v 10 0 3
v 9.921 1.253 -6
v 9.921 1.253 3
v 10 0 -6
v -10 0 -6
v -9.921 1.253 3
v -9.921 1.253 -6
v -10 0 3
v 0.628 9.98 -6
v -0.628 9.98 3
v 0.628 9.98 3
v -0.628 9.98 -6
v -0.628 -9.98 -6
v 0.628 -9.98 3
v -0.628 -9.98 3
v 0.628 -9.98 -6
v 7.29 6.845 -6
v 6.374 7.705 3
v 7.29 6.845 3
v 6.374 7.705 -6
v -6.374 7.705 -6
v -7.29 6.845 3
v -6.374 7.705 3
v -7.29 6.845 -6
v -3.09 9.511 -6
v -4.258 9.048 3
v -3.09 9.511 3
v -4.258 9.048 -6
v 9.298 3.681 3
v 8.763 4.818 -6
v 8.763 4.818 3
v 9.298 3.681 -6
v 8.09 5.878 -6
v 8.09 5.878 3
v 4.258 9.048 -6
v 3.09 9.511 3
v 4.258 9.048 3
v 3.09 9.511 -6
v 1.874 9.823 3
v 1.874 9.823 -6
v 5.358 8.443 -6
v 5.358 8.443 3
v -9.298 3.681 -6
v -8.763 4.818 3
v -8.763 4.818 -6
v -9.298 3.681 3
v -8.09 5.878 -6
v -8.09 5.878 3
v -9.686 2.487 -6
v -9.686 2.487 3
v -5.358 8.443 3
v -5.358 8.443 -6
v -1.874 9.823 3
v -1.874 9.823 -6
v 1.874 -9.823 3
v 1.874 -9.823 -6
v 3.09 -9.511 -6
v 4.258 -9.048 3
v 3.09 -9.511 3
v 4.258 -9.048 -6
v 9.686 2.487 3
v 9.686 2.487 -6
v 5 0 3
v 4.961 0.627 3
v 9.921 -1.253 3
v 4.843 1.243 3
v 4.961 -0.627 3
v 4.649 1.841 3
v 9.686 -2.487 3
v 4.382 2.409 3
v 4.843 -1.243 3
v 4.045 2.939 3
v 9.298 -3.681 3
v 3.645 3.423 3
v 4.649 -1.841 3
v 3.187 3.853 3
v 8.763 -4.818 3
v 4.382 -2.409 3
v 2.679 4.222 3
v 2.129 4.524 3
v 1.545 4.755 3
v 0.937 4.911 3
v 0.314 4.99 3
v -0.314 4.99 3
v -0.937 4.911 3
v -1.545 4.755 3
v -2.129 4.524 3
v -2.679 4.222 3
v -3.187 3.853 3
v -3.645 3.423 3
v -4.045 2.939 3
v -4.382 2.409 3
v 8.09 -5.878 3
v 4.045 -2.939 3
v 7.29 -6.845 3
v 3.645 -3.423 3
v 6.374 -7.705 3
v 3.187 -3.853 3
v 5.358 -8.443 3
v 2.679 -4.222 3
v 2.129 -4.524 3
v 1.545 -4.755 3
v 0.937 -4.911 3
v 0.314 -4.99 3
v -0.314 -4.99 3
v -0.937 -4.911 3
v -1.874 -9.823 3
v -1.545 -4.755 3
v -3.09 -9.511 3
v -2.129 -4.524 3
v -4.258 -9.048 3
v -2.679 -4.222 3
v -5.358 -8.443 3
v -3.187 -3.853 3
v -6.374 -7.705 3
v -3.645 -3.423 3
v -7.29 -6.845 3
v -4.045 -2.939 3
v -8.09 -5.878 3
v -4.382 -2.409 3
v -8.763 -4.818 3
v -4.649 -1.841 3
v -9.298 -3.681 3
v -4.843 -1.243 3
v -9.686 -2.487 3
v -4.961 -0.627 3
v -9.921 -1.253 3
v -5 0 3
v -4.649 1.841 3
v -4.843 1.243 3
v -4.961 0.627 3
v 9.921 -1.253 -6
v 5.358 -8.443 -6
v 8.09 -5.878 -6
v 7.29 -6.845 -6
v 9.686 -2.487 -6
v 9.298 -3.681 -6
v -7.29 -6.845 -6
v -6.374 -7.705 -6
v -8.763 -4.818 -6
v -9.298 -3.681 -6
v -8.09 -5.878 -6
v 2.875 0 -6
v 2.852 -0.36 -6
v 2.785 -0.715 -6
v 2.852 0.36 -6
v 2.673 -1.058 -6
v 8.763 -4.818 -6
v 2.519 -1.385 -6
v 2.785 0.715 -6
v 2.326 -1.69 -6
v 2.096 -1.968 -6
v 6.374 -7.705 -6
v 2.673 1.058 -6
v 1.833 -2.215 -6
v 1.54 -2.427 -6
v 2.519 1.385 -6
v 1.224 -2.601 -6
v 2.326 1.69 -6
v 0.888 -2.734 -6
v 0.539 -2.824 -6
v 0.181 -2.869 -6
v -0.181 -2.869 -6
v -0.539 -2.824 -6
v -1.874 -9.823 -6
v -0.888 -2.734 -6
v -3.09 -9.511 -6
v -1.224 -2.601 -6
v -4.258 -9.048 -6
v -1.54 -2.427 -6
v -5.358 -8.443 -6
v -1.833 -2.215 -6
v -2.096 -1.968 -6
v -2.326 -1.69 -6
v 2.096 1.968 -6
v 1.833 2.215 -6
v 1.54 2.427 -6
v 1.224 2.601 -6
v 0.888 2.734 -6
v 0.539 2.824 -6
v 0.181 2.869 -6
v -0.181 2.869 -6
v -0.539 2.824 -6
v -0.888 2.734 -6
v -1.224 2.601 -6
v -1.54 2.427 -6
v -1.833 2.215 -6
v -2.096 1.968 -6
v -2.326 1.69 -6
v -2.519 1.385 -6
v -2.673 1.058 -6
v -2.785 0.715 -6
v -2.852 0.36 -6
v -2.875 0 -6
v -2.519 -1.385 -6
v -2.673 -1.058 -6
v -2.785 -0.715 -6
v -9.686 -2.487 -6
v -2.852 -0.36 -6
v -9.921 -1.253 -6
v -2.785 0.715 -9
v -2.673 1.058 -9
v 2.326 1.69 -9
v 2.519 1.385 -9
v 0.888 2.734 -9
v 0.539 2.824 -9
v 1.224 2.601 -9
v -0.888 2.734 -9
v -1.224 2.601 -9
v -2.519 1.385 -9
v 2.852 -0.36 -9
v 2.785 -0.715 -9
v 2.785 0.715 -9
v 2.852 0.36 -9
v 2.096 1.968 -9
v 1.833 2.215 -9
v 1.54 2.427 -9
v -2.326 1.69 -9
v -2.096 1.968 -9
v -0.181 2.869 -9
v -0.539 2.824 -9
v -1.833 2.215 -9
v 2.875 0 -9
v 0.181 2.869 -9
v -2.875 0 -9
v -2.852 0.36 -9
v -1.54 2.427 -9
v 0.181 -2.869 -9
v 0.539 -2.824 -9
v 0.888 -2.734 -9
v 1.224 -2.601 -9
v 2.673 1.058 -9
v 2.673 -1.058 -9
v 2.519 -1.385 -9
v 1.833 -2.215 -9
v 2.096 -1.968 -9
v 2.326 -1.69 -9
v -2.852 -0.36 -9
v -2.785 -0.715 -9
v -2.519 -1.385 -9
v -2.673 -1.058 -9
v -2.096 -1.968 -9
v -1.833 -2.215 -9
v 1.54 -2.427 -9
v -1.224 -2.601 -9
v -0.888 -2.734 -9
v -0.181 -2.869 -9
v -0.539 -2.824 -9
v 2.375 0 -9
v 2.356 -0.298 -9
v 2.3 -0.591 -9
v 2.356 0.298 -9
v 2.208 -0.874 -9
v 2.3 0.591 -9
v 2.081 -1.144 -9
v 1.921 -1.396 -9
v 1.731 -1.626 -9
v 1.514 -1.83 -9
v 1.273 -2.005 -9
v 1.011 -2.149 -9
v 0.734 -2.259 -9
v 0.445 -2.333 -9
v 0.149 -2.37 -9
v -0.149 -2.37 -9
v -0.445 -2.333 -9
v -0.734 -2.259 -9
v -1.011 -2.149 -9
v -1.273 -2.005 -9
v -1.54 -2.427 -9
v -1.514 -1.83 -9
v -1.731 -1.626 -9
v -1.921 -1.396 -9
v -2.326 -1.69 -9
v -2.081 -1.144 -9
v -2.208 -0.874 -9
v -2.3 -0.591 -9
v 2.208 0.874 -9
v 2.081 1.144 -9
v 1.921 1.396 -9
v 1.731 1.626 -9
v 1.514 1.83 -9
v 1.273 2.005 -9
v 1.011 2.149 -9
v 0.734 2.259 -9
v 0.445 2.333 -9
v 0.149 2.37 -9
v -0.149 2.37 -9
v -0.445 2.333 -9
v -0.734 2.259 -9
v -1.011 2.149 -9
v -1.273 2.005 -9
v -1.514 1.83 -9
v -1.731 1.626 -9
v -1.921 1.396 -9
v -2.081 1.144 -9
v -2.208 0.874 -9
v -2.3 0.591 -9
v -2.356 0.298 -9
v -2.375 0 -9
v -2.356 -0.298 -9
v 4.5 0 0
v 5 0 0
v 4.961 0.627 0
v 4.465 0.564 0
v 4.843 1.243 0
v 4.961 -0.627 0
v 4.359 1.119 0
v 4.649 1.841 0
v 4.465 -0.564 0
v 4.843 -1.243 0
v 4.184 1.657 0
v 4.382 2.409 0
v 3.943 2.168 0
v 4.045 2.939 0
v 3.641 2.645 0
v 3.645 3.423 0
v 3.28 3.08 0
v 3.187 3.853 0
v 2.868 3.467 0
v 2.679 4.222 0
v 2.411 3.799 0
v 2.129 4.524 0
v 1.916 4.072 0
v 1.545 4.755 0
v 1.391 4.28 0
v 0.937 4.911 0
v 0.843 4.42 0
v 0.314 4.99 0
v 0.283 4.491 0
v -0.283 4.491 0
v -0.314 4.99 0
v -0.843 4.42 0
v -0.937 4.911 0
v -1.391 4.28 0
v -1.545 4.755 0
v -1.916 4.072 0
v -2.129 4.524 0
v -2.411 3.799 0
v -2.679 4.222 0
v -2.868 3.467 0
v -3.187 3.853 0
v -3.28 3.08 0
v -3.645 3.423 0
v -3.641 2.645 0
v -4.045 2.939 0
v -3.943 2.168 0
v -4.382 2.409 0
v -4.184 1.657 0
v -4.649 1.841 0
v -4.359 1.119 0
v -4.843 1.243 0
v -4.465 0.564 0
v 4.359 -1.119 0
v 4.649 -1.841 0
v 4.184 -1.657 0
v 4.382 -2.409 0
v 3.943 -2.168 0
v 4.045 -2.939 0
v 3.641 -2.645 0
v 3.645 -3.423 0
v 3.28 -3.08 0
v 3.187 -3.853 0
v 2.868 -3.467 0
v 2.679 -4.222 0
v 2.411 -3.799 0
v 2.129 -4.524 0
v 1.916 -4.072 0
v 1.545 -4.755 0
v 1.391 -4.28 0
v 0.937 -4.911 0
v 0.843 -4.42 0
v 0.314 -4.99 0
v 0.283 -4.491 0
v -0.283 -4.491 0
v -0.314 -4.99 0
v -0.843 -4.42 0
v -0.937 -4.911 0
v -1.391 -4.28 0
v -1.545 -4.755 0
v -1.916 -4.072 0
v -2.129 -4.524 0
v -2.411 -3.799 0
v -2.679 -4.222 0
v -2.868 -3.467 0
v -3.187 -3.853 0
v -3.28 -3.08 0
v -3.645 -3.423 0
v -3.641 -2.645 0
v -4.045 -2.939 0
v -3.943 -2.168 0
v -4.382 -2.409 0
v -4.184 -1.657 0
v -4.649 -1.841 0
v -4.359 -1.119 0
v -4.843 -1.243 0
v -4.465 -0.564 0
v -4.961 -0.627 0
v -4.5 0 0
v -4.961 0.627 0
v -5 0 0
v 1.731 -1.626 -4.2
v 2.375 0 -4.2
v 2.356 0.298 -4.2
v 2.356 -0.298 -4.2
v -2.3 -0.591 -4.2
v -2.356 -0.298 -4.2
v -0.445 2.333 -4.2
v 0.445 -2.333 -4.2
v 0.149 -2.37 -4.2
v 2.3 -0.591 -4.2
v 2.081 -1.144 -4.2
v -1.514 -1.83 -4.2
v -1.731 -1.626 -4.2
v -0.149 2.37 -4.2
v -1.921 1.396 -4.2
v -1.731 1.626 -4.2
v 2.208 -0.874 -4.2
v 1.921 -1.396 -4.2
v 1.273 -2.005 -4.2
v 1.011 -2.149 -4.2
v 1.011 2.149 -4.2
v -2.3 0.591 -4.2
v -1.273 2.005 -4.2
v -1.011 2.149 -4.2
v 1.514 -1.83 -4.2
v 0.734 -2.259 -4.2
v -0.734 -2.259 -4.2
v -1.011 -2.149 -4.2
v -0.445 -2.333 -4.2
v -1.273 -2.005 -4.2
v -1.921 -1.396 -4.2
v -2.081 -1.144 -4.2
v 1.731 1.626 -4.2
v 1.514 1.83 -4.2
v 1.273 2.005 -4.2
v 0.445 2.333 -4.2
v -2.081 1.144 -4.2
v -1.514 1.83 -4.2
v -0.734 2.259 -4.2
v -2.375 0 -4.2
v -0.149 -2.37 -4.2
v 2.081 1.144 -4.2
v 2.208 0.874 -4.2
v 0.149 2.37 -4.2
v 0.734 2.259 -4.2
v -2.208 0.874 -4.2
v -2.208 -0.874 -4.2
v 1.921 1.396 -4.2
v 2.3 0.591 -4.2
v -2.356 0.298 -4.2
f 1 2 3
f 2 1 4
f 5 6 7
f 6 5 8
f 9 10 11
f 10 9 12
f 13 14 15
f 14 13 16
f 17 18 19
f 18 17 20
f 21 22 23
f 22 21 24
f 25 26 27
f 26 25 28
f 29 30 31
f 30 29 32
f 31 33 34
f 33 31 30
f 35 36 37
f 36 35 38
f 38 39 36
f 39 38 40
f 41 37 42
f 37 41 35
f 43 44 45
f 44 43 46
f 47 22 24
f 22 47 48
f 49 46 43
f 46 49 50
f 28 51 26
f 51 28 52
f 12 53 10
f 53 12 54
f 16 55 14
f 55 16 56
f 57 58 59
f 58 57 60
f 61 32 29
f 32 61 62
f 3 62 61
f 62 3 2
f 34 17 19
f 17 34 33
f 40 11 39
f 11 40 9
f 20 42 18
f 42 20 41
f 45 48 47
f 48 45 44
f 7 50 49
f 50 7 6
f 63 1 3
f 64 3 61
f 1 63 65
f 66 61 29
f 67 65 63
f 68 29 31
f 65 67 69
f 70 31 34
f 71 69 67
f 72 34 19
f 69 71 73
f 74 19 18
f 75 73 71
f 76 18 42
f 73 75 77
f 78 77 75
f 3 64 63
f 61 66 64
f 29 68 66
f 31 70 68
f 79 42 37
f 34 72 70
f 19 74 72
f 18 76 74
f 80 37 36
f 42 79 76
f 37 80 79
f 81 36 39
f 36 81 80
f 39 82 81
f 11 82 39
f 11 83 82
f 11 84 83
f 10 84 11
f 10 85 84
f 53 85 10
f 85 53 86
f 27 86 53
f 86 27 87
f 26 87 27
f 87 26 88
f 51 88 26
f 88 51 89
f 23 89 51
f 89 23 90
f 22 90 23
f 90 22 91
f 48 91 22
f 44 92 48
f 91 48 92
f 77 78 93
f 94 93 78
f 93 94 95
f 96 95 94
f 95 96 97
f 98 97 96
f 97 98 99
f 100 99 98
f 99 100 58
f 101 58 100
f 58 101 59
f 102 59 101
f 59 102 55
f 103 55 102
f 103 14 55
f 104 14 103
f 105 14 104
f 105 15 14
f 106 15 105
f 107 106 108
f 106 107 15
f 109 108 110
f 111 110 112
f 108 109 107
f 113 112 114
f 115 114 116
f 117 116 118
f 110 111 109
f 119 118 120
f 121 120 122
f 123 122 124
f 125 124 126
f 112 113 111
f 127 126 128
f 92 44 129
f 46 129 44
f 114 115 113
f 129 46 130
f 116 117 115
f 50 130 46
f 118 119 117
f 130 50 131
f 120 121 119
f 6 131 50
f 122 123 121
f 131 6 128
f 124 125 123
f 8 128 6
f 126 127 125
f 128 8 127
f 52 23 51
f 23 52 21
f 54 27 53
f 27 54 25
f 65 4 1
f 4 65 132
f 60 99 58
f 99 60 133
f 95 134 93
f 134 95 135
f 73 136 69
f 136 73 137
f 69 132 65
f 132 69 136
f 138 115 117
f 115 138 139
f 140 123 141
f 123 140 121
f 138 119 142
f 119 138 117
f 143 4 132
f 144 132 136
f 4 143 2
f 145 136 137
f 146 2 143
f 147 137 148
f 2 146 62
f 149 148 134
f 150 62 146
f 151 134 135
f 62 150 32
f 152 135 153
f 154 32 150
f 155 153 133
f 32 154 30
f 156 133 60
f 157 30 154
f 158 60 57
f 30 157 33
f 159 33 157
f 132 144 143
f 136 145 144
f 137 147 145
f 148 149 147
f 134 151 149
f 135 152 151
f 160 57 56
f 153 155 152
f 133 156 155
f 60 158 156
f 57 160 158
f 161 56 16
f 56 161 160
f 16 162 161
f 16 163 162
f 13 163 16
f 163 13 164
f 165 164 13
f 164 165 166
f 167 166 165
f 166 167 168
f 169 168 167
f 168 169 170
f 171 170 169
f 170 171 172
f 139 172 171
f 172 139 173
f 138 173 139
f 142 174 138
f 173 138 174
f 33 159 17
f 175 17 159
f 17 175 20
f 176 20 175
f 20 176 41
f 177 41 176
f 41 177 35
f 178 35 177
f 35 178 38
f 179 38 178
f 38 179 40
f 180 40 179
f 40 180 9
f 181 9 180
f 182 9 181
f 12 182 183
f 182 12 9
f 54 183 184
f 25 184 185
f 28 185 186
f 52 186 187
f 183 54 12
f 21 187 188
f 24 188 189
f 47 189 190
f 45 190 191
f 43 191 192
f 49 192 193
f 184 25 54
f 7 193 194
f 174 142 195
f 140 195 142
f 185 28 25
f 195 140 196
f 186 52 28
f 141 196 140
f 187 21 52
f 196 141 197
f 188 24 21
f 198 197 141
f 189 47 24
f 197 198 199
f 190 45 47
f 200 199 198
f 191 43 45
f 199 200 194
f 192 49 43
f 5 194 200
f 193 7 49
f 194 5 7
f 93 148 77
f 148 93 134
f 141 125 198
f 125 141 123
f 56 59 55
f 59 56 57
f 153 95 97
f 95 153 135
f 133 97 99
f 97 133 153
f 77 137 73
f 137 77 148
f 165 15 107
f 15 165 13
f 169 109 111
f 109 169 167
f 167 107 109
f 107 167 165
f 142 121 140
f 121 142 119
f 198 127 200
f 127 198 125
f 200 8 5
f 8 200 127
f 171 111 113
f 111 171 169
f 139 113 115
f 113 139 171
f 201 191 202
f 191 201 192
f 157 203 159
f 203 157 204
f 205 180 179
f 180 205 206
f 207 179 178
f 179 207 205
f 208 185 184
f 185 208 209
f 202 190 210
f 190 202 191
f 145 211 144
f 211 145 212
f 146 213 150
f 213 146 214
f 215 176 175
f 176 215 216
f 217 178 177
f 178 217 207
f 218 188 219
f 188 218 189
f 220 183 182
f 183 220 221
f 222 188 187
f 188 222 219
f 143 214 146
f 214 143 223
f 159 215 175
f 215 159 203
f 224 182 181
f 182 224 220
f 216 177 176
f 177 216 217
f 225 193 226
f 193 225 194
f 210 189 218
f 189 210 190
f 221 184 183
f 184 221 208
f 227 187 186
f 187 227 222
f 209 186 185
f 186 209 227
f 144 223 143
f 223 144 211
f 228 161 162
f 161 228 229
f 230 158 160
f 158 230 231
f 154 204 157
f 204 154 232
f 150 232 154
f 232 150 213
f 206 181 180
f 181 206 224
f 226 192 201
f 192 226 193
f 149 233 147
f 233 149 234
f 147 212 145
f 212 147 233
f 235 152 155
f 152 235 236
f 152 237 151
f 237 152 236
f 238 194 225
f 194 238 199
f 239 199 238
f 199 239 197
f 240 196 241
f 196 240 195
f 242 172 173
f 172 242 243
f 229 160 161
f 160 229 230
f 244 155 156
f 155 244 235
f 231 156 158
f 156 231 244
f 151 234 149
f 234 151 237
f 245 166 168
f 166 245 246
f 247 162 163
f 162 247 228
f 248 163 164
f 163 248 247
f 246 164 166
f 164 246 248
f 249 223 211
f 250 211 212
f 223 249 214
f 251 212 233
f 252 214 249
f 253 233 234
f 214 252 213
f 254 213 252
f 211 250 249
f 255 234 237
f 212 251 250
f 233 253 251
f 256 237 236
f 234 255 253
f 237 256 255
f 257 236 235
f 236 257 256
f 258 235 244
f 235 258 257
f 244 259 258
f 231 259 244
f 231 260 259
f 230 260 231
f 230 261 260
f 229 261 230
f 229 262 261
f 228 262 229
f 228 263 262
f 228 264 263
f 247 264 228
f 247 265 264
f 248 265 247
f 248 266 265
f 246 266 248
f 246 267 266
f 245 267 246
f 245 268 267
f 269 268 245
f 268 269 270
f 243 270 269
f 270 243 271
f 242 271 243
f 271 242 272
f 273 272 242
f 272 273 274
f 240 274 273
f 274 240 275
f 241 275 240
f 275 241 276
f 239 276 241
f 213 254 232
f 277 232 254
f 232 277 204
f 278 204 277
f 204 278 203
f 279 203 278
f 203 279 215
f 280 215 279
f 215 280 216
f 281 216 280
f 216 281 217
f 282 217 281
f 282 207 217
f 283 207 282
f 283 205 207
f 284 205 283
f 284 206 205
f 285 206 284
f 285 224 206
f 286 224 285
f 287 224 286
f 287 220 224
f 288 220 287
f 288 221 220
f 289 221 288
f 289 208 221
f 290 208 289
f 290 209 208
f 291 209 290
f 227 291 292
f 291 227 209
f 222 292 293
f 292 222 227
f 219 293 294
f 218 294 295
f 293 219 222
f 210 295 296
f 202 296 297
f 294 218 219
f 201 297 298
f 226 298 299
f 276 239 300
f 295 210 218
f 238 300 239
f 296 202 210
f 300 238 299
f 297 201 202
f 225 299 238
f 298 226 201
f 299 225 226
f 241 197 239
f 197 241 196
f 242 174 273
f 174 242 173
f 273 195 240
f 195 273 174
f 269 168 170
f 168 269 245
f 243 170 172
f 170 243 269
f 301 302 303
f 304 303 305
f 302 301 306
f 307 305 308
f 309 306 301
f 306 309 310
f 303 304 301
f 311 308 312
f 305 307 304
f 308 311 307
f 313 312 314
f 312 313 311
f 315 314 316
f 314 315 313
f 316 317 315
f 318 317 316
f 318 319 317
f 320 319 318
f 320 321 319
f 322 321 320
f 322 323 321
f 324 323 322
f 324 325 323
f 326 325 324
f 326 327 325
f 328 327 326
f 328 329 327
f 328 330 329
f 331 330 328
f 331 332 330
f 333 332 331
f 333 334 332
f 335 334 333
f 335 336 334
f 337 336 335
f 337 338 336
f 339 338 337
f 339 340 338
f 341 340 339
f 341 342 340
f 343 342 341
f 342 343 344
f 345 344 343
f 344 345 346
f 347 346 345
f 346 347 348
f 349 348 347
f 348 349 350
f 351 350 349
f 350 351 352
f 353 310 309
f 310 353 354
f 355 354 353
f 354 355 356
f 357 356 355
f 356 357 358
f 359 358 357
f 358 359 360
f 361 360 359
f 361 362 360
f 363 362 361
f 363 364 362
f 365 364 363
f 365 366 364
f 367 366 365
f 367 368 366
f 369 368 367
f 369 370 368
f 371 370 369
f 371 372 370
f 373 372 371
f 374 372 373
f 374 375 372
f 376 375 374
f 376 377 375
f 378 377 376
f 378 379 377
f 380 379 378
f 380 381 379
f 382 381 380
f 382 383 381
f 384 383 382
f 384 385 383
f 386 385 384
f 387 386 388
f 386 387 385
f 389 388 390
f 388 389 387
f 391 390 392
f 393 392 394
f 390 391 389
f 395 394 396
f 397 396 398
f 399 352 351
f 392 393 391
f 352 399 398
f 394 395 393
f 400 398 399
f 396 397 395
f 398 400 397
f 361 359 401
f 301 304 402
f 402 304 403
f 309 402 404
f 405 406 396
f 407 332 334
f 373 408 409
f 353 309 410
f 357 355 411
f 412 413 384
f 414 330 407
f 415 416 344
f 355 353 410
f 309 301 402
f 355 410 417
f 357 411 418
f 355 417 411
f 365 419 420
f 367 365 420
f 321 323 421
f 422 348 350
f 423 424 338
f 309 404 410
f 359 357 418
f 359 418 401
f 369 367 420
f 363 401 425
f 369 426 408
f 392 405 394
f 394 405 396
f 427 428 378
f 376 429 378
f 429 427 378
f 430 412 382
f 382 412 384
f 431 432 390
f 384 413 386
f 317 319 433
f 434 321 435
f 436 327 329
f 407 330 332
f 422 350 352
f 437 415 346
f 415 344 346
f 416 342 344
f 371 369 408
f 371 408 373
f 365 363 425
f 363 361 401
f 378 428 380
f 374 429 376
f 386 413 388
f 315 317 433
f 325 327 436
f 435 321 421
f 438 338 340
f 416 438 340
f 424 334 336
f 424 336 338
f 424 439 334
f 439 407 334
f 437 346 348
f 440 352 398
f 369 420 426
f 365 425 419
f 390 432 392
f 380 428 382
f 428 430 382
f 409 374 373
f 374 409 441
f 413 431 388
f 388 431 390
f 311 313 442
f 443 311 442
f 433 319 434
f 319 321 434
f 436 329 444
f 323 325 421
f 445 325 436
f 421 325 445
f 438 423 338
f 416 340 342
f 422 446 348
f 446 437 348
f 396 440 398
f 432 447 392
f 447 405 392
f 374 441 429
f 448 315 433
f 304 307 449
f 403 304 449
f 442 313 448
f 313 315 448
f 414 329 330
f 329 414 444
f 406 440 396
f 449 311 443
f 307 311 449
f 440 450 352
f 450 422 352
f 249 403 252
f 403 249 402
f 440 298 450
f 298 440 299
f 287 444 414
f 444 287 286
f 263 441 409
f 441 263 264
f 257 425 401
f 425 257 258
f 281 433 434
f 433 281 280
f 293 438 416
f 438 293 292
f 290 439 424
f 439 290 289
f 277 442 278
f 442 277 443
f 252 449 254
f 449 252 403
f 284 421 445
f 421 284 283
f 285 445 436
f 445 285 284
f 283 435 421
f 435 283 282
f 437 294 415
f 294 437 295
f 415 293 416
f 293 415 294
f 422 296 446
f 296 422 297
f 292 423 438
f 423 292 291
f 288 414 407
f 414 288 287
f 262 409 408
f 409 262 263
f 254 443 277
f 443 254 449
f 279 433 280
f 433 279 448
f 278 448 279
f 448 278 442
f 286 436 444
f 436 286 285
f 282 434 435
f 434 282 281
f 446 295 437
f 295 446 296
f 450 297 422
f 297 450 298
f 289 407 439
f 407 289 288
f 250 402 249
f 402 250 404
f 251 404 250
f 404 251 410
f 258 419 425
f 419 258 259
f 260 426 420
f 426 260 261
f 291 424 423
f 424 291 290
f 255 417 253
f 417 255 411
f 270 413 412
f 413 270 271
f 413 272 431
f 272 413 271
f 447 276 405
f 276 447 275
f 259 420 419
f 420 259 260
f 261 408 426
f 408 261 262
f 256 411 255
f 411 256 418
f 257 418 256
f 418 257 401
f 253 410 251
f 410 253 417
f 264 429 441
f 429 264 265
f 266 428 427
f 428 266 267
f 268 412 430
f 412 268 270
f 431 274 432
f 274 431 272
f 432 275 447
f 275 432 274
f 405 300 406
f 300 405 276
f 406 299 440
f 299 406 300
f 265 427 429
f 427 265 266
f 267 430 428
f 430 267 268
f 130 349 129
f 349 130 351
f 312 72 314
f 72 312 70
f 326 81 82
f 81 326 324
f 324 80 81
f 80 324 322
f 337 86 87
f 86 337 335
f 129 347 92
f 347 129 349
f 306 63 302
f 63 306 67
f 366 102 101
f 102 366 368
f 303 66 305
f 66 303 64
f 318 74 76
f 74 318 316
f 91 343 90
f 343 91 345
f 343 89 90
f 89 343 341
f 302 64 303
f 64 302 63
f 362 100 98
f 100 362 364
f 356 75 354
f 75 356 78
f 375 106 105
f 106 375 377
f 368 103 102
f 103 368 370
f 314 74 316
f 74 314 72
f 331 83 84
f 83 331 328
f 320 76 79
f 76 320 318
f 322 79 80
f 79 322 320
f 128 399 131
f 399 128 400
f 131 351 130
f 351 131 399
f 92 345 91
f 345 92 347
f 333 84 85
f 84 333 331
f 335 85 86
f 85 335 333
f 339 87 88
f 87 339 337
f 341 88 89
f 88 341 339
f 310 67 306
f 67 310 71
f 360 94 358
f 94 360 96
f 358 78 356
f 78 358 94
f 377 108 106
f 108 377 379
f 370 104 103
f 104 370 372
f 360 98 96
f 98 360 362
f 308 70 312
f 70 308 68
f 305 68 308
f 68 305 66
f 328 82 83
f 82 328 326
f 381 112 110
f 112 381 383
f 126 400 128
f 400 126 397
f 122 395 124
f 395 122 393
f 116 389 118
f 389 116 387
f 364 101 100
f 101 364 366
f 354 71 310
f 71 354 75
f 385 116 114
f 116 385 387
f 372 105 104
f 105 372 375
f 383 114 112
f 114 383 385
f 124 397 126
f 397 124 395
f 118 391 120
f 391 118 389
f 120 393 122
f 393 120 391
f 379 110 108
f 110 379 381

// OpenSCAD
$fn = 50;

difference() {
	union() {
		translate(v = [0, 0, -6.0]) {
			cylinder(h = 9, r = 10.0);
		}
		#translate(v = [0, 0, -9.0]) {
			cylinder(h = 9, r = 2.875);
		}
	}
	union() {
		translate(v = [0, 0, 0]) {
			rotate(a = [0, 0, 0]) {
				difference() {
					union() {
						translate(v = [0, 0, -9.0]) {
							cylinder(h = 9, r = 2.25);
						}
						translate(v = [0, 0, -4.2]) {
							cylinder(h = 4.2, r1 = 2.375, r2 = 4.5);
						}
						translate(v = [0, 0, -9.0]) {
							cylinder(h = 9, r = 2.375);
						}
						translate(v = [0, 0, -9.0]) {
							cylinder(h = 9, r = 2.25);
						}
					}
					union();
				}
			}
		}
		#cylinder(h = 3, r = 5.0);
	}
}
